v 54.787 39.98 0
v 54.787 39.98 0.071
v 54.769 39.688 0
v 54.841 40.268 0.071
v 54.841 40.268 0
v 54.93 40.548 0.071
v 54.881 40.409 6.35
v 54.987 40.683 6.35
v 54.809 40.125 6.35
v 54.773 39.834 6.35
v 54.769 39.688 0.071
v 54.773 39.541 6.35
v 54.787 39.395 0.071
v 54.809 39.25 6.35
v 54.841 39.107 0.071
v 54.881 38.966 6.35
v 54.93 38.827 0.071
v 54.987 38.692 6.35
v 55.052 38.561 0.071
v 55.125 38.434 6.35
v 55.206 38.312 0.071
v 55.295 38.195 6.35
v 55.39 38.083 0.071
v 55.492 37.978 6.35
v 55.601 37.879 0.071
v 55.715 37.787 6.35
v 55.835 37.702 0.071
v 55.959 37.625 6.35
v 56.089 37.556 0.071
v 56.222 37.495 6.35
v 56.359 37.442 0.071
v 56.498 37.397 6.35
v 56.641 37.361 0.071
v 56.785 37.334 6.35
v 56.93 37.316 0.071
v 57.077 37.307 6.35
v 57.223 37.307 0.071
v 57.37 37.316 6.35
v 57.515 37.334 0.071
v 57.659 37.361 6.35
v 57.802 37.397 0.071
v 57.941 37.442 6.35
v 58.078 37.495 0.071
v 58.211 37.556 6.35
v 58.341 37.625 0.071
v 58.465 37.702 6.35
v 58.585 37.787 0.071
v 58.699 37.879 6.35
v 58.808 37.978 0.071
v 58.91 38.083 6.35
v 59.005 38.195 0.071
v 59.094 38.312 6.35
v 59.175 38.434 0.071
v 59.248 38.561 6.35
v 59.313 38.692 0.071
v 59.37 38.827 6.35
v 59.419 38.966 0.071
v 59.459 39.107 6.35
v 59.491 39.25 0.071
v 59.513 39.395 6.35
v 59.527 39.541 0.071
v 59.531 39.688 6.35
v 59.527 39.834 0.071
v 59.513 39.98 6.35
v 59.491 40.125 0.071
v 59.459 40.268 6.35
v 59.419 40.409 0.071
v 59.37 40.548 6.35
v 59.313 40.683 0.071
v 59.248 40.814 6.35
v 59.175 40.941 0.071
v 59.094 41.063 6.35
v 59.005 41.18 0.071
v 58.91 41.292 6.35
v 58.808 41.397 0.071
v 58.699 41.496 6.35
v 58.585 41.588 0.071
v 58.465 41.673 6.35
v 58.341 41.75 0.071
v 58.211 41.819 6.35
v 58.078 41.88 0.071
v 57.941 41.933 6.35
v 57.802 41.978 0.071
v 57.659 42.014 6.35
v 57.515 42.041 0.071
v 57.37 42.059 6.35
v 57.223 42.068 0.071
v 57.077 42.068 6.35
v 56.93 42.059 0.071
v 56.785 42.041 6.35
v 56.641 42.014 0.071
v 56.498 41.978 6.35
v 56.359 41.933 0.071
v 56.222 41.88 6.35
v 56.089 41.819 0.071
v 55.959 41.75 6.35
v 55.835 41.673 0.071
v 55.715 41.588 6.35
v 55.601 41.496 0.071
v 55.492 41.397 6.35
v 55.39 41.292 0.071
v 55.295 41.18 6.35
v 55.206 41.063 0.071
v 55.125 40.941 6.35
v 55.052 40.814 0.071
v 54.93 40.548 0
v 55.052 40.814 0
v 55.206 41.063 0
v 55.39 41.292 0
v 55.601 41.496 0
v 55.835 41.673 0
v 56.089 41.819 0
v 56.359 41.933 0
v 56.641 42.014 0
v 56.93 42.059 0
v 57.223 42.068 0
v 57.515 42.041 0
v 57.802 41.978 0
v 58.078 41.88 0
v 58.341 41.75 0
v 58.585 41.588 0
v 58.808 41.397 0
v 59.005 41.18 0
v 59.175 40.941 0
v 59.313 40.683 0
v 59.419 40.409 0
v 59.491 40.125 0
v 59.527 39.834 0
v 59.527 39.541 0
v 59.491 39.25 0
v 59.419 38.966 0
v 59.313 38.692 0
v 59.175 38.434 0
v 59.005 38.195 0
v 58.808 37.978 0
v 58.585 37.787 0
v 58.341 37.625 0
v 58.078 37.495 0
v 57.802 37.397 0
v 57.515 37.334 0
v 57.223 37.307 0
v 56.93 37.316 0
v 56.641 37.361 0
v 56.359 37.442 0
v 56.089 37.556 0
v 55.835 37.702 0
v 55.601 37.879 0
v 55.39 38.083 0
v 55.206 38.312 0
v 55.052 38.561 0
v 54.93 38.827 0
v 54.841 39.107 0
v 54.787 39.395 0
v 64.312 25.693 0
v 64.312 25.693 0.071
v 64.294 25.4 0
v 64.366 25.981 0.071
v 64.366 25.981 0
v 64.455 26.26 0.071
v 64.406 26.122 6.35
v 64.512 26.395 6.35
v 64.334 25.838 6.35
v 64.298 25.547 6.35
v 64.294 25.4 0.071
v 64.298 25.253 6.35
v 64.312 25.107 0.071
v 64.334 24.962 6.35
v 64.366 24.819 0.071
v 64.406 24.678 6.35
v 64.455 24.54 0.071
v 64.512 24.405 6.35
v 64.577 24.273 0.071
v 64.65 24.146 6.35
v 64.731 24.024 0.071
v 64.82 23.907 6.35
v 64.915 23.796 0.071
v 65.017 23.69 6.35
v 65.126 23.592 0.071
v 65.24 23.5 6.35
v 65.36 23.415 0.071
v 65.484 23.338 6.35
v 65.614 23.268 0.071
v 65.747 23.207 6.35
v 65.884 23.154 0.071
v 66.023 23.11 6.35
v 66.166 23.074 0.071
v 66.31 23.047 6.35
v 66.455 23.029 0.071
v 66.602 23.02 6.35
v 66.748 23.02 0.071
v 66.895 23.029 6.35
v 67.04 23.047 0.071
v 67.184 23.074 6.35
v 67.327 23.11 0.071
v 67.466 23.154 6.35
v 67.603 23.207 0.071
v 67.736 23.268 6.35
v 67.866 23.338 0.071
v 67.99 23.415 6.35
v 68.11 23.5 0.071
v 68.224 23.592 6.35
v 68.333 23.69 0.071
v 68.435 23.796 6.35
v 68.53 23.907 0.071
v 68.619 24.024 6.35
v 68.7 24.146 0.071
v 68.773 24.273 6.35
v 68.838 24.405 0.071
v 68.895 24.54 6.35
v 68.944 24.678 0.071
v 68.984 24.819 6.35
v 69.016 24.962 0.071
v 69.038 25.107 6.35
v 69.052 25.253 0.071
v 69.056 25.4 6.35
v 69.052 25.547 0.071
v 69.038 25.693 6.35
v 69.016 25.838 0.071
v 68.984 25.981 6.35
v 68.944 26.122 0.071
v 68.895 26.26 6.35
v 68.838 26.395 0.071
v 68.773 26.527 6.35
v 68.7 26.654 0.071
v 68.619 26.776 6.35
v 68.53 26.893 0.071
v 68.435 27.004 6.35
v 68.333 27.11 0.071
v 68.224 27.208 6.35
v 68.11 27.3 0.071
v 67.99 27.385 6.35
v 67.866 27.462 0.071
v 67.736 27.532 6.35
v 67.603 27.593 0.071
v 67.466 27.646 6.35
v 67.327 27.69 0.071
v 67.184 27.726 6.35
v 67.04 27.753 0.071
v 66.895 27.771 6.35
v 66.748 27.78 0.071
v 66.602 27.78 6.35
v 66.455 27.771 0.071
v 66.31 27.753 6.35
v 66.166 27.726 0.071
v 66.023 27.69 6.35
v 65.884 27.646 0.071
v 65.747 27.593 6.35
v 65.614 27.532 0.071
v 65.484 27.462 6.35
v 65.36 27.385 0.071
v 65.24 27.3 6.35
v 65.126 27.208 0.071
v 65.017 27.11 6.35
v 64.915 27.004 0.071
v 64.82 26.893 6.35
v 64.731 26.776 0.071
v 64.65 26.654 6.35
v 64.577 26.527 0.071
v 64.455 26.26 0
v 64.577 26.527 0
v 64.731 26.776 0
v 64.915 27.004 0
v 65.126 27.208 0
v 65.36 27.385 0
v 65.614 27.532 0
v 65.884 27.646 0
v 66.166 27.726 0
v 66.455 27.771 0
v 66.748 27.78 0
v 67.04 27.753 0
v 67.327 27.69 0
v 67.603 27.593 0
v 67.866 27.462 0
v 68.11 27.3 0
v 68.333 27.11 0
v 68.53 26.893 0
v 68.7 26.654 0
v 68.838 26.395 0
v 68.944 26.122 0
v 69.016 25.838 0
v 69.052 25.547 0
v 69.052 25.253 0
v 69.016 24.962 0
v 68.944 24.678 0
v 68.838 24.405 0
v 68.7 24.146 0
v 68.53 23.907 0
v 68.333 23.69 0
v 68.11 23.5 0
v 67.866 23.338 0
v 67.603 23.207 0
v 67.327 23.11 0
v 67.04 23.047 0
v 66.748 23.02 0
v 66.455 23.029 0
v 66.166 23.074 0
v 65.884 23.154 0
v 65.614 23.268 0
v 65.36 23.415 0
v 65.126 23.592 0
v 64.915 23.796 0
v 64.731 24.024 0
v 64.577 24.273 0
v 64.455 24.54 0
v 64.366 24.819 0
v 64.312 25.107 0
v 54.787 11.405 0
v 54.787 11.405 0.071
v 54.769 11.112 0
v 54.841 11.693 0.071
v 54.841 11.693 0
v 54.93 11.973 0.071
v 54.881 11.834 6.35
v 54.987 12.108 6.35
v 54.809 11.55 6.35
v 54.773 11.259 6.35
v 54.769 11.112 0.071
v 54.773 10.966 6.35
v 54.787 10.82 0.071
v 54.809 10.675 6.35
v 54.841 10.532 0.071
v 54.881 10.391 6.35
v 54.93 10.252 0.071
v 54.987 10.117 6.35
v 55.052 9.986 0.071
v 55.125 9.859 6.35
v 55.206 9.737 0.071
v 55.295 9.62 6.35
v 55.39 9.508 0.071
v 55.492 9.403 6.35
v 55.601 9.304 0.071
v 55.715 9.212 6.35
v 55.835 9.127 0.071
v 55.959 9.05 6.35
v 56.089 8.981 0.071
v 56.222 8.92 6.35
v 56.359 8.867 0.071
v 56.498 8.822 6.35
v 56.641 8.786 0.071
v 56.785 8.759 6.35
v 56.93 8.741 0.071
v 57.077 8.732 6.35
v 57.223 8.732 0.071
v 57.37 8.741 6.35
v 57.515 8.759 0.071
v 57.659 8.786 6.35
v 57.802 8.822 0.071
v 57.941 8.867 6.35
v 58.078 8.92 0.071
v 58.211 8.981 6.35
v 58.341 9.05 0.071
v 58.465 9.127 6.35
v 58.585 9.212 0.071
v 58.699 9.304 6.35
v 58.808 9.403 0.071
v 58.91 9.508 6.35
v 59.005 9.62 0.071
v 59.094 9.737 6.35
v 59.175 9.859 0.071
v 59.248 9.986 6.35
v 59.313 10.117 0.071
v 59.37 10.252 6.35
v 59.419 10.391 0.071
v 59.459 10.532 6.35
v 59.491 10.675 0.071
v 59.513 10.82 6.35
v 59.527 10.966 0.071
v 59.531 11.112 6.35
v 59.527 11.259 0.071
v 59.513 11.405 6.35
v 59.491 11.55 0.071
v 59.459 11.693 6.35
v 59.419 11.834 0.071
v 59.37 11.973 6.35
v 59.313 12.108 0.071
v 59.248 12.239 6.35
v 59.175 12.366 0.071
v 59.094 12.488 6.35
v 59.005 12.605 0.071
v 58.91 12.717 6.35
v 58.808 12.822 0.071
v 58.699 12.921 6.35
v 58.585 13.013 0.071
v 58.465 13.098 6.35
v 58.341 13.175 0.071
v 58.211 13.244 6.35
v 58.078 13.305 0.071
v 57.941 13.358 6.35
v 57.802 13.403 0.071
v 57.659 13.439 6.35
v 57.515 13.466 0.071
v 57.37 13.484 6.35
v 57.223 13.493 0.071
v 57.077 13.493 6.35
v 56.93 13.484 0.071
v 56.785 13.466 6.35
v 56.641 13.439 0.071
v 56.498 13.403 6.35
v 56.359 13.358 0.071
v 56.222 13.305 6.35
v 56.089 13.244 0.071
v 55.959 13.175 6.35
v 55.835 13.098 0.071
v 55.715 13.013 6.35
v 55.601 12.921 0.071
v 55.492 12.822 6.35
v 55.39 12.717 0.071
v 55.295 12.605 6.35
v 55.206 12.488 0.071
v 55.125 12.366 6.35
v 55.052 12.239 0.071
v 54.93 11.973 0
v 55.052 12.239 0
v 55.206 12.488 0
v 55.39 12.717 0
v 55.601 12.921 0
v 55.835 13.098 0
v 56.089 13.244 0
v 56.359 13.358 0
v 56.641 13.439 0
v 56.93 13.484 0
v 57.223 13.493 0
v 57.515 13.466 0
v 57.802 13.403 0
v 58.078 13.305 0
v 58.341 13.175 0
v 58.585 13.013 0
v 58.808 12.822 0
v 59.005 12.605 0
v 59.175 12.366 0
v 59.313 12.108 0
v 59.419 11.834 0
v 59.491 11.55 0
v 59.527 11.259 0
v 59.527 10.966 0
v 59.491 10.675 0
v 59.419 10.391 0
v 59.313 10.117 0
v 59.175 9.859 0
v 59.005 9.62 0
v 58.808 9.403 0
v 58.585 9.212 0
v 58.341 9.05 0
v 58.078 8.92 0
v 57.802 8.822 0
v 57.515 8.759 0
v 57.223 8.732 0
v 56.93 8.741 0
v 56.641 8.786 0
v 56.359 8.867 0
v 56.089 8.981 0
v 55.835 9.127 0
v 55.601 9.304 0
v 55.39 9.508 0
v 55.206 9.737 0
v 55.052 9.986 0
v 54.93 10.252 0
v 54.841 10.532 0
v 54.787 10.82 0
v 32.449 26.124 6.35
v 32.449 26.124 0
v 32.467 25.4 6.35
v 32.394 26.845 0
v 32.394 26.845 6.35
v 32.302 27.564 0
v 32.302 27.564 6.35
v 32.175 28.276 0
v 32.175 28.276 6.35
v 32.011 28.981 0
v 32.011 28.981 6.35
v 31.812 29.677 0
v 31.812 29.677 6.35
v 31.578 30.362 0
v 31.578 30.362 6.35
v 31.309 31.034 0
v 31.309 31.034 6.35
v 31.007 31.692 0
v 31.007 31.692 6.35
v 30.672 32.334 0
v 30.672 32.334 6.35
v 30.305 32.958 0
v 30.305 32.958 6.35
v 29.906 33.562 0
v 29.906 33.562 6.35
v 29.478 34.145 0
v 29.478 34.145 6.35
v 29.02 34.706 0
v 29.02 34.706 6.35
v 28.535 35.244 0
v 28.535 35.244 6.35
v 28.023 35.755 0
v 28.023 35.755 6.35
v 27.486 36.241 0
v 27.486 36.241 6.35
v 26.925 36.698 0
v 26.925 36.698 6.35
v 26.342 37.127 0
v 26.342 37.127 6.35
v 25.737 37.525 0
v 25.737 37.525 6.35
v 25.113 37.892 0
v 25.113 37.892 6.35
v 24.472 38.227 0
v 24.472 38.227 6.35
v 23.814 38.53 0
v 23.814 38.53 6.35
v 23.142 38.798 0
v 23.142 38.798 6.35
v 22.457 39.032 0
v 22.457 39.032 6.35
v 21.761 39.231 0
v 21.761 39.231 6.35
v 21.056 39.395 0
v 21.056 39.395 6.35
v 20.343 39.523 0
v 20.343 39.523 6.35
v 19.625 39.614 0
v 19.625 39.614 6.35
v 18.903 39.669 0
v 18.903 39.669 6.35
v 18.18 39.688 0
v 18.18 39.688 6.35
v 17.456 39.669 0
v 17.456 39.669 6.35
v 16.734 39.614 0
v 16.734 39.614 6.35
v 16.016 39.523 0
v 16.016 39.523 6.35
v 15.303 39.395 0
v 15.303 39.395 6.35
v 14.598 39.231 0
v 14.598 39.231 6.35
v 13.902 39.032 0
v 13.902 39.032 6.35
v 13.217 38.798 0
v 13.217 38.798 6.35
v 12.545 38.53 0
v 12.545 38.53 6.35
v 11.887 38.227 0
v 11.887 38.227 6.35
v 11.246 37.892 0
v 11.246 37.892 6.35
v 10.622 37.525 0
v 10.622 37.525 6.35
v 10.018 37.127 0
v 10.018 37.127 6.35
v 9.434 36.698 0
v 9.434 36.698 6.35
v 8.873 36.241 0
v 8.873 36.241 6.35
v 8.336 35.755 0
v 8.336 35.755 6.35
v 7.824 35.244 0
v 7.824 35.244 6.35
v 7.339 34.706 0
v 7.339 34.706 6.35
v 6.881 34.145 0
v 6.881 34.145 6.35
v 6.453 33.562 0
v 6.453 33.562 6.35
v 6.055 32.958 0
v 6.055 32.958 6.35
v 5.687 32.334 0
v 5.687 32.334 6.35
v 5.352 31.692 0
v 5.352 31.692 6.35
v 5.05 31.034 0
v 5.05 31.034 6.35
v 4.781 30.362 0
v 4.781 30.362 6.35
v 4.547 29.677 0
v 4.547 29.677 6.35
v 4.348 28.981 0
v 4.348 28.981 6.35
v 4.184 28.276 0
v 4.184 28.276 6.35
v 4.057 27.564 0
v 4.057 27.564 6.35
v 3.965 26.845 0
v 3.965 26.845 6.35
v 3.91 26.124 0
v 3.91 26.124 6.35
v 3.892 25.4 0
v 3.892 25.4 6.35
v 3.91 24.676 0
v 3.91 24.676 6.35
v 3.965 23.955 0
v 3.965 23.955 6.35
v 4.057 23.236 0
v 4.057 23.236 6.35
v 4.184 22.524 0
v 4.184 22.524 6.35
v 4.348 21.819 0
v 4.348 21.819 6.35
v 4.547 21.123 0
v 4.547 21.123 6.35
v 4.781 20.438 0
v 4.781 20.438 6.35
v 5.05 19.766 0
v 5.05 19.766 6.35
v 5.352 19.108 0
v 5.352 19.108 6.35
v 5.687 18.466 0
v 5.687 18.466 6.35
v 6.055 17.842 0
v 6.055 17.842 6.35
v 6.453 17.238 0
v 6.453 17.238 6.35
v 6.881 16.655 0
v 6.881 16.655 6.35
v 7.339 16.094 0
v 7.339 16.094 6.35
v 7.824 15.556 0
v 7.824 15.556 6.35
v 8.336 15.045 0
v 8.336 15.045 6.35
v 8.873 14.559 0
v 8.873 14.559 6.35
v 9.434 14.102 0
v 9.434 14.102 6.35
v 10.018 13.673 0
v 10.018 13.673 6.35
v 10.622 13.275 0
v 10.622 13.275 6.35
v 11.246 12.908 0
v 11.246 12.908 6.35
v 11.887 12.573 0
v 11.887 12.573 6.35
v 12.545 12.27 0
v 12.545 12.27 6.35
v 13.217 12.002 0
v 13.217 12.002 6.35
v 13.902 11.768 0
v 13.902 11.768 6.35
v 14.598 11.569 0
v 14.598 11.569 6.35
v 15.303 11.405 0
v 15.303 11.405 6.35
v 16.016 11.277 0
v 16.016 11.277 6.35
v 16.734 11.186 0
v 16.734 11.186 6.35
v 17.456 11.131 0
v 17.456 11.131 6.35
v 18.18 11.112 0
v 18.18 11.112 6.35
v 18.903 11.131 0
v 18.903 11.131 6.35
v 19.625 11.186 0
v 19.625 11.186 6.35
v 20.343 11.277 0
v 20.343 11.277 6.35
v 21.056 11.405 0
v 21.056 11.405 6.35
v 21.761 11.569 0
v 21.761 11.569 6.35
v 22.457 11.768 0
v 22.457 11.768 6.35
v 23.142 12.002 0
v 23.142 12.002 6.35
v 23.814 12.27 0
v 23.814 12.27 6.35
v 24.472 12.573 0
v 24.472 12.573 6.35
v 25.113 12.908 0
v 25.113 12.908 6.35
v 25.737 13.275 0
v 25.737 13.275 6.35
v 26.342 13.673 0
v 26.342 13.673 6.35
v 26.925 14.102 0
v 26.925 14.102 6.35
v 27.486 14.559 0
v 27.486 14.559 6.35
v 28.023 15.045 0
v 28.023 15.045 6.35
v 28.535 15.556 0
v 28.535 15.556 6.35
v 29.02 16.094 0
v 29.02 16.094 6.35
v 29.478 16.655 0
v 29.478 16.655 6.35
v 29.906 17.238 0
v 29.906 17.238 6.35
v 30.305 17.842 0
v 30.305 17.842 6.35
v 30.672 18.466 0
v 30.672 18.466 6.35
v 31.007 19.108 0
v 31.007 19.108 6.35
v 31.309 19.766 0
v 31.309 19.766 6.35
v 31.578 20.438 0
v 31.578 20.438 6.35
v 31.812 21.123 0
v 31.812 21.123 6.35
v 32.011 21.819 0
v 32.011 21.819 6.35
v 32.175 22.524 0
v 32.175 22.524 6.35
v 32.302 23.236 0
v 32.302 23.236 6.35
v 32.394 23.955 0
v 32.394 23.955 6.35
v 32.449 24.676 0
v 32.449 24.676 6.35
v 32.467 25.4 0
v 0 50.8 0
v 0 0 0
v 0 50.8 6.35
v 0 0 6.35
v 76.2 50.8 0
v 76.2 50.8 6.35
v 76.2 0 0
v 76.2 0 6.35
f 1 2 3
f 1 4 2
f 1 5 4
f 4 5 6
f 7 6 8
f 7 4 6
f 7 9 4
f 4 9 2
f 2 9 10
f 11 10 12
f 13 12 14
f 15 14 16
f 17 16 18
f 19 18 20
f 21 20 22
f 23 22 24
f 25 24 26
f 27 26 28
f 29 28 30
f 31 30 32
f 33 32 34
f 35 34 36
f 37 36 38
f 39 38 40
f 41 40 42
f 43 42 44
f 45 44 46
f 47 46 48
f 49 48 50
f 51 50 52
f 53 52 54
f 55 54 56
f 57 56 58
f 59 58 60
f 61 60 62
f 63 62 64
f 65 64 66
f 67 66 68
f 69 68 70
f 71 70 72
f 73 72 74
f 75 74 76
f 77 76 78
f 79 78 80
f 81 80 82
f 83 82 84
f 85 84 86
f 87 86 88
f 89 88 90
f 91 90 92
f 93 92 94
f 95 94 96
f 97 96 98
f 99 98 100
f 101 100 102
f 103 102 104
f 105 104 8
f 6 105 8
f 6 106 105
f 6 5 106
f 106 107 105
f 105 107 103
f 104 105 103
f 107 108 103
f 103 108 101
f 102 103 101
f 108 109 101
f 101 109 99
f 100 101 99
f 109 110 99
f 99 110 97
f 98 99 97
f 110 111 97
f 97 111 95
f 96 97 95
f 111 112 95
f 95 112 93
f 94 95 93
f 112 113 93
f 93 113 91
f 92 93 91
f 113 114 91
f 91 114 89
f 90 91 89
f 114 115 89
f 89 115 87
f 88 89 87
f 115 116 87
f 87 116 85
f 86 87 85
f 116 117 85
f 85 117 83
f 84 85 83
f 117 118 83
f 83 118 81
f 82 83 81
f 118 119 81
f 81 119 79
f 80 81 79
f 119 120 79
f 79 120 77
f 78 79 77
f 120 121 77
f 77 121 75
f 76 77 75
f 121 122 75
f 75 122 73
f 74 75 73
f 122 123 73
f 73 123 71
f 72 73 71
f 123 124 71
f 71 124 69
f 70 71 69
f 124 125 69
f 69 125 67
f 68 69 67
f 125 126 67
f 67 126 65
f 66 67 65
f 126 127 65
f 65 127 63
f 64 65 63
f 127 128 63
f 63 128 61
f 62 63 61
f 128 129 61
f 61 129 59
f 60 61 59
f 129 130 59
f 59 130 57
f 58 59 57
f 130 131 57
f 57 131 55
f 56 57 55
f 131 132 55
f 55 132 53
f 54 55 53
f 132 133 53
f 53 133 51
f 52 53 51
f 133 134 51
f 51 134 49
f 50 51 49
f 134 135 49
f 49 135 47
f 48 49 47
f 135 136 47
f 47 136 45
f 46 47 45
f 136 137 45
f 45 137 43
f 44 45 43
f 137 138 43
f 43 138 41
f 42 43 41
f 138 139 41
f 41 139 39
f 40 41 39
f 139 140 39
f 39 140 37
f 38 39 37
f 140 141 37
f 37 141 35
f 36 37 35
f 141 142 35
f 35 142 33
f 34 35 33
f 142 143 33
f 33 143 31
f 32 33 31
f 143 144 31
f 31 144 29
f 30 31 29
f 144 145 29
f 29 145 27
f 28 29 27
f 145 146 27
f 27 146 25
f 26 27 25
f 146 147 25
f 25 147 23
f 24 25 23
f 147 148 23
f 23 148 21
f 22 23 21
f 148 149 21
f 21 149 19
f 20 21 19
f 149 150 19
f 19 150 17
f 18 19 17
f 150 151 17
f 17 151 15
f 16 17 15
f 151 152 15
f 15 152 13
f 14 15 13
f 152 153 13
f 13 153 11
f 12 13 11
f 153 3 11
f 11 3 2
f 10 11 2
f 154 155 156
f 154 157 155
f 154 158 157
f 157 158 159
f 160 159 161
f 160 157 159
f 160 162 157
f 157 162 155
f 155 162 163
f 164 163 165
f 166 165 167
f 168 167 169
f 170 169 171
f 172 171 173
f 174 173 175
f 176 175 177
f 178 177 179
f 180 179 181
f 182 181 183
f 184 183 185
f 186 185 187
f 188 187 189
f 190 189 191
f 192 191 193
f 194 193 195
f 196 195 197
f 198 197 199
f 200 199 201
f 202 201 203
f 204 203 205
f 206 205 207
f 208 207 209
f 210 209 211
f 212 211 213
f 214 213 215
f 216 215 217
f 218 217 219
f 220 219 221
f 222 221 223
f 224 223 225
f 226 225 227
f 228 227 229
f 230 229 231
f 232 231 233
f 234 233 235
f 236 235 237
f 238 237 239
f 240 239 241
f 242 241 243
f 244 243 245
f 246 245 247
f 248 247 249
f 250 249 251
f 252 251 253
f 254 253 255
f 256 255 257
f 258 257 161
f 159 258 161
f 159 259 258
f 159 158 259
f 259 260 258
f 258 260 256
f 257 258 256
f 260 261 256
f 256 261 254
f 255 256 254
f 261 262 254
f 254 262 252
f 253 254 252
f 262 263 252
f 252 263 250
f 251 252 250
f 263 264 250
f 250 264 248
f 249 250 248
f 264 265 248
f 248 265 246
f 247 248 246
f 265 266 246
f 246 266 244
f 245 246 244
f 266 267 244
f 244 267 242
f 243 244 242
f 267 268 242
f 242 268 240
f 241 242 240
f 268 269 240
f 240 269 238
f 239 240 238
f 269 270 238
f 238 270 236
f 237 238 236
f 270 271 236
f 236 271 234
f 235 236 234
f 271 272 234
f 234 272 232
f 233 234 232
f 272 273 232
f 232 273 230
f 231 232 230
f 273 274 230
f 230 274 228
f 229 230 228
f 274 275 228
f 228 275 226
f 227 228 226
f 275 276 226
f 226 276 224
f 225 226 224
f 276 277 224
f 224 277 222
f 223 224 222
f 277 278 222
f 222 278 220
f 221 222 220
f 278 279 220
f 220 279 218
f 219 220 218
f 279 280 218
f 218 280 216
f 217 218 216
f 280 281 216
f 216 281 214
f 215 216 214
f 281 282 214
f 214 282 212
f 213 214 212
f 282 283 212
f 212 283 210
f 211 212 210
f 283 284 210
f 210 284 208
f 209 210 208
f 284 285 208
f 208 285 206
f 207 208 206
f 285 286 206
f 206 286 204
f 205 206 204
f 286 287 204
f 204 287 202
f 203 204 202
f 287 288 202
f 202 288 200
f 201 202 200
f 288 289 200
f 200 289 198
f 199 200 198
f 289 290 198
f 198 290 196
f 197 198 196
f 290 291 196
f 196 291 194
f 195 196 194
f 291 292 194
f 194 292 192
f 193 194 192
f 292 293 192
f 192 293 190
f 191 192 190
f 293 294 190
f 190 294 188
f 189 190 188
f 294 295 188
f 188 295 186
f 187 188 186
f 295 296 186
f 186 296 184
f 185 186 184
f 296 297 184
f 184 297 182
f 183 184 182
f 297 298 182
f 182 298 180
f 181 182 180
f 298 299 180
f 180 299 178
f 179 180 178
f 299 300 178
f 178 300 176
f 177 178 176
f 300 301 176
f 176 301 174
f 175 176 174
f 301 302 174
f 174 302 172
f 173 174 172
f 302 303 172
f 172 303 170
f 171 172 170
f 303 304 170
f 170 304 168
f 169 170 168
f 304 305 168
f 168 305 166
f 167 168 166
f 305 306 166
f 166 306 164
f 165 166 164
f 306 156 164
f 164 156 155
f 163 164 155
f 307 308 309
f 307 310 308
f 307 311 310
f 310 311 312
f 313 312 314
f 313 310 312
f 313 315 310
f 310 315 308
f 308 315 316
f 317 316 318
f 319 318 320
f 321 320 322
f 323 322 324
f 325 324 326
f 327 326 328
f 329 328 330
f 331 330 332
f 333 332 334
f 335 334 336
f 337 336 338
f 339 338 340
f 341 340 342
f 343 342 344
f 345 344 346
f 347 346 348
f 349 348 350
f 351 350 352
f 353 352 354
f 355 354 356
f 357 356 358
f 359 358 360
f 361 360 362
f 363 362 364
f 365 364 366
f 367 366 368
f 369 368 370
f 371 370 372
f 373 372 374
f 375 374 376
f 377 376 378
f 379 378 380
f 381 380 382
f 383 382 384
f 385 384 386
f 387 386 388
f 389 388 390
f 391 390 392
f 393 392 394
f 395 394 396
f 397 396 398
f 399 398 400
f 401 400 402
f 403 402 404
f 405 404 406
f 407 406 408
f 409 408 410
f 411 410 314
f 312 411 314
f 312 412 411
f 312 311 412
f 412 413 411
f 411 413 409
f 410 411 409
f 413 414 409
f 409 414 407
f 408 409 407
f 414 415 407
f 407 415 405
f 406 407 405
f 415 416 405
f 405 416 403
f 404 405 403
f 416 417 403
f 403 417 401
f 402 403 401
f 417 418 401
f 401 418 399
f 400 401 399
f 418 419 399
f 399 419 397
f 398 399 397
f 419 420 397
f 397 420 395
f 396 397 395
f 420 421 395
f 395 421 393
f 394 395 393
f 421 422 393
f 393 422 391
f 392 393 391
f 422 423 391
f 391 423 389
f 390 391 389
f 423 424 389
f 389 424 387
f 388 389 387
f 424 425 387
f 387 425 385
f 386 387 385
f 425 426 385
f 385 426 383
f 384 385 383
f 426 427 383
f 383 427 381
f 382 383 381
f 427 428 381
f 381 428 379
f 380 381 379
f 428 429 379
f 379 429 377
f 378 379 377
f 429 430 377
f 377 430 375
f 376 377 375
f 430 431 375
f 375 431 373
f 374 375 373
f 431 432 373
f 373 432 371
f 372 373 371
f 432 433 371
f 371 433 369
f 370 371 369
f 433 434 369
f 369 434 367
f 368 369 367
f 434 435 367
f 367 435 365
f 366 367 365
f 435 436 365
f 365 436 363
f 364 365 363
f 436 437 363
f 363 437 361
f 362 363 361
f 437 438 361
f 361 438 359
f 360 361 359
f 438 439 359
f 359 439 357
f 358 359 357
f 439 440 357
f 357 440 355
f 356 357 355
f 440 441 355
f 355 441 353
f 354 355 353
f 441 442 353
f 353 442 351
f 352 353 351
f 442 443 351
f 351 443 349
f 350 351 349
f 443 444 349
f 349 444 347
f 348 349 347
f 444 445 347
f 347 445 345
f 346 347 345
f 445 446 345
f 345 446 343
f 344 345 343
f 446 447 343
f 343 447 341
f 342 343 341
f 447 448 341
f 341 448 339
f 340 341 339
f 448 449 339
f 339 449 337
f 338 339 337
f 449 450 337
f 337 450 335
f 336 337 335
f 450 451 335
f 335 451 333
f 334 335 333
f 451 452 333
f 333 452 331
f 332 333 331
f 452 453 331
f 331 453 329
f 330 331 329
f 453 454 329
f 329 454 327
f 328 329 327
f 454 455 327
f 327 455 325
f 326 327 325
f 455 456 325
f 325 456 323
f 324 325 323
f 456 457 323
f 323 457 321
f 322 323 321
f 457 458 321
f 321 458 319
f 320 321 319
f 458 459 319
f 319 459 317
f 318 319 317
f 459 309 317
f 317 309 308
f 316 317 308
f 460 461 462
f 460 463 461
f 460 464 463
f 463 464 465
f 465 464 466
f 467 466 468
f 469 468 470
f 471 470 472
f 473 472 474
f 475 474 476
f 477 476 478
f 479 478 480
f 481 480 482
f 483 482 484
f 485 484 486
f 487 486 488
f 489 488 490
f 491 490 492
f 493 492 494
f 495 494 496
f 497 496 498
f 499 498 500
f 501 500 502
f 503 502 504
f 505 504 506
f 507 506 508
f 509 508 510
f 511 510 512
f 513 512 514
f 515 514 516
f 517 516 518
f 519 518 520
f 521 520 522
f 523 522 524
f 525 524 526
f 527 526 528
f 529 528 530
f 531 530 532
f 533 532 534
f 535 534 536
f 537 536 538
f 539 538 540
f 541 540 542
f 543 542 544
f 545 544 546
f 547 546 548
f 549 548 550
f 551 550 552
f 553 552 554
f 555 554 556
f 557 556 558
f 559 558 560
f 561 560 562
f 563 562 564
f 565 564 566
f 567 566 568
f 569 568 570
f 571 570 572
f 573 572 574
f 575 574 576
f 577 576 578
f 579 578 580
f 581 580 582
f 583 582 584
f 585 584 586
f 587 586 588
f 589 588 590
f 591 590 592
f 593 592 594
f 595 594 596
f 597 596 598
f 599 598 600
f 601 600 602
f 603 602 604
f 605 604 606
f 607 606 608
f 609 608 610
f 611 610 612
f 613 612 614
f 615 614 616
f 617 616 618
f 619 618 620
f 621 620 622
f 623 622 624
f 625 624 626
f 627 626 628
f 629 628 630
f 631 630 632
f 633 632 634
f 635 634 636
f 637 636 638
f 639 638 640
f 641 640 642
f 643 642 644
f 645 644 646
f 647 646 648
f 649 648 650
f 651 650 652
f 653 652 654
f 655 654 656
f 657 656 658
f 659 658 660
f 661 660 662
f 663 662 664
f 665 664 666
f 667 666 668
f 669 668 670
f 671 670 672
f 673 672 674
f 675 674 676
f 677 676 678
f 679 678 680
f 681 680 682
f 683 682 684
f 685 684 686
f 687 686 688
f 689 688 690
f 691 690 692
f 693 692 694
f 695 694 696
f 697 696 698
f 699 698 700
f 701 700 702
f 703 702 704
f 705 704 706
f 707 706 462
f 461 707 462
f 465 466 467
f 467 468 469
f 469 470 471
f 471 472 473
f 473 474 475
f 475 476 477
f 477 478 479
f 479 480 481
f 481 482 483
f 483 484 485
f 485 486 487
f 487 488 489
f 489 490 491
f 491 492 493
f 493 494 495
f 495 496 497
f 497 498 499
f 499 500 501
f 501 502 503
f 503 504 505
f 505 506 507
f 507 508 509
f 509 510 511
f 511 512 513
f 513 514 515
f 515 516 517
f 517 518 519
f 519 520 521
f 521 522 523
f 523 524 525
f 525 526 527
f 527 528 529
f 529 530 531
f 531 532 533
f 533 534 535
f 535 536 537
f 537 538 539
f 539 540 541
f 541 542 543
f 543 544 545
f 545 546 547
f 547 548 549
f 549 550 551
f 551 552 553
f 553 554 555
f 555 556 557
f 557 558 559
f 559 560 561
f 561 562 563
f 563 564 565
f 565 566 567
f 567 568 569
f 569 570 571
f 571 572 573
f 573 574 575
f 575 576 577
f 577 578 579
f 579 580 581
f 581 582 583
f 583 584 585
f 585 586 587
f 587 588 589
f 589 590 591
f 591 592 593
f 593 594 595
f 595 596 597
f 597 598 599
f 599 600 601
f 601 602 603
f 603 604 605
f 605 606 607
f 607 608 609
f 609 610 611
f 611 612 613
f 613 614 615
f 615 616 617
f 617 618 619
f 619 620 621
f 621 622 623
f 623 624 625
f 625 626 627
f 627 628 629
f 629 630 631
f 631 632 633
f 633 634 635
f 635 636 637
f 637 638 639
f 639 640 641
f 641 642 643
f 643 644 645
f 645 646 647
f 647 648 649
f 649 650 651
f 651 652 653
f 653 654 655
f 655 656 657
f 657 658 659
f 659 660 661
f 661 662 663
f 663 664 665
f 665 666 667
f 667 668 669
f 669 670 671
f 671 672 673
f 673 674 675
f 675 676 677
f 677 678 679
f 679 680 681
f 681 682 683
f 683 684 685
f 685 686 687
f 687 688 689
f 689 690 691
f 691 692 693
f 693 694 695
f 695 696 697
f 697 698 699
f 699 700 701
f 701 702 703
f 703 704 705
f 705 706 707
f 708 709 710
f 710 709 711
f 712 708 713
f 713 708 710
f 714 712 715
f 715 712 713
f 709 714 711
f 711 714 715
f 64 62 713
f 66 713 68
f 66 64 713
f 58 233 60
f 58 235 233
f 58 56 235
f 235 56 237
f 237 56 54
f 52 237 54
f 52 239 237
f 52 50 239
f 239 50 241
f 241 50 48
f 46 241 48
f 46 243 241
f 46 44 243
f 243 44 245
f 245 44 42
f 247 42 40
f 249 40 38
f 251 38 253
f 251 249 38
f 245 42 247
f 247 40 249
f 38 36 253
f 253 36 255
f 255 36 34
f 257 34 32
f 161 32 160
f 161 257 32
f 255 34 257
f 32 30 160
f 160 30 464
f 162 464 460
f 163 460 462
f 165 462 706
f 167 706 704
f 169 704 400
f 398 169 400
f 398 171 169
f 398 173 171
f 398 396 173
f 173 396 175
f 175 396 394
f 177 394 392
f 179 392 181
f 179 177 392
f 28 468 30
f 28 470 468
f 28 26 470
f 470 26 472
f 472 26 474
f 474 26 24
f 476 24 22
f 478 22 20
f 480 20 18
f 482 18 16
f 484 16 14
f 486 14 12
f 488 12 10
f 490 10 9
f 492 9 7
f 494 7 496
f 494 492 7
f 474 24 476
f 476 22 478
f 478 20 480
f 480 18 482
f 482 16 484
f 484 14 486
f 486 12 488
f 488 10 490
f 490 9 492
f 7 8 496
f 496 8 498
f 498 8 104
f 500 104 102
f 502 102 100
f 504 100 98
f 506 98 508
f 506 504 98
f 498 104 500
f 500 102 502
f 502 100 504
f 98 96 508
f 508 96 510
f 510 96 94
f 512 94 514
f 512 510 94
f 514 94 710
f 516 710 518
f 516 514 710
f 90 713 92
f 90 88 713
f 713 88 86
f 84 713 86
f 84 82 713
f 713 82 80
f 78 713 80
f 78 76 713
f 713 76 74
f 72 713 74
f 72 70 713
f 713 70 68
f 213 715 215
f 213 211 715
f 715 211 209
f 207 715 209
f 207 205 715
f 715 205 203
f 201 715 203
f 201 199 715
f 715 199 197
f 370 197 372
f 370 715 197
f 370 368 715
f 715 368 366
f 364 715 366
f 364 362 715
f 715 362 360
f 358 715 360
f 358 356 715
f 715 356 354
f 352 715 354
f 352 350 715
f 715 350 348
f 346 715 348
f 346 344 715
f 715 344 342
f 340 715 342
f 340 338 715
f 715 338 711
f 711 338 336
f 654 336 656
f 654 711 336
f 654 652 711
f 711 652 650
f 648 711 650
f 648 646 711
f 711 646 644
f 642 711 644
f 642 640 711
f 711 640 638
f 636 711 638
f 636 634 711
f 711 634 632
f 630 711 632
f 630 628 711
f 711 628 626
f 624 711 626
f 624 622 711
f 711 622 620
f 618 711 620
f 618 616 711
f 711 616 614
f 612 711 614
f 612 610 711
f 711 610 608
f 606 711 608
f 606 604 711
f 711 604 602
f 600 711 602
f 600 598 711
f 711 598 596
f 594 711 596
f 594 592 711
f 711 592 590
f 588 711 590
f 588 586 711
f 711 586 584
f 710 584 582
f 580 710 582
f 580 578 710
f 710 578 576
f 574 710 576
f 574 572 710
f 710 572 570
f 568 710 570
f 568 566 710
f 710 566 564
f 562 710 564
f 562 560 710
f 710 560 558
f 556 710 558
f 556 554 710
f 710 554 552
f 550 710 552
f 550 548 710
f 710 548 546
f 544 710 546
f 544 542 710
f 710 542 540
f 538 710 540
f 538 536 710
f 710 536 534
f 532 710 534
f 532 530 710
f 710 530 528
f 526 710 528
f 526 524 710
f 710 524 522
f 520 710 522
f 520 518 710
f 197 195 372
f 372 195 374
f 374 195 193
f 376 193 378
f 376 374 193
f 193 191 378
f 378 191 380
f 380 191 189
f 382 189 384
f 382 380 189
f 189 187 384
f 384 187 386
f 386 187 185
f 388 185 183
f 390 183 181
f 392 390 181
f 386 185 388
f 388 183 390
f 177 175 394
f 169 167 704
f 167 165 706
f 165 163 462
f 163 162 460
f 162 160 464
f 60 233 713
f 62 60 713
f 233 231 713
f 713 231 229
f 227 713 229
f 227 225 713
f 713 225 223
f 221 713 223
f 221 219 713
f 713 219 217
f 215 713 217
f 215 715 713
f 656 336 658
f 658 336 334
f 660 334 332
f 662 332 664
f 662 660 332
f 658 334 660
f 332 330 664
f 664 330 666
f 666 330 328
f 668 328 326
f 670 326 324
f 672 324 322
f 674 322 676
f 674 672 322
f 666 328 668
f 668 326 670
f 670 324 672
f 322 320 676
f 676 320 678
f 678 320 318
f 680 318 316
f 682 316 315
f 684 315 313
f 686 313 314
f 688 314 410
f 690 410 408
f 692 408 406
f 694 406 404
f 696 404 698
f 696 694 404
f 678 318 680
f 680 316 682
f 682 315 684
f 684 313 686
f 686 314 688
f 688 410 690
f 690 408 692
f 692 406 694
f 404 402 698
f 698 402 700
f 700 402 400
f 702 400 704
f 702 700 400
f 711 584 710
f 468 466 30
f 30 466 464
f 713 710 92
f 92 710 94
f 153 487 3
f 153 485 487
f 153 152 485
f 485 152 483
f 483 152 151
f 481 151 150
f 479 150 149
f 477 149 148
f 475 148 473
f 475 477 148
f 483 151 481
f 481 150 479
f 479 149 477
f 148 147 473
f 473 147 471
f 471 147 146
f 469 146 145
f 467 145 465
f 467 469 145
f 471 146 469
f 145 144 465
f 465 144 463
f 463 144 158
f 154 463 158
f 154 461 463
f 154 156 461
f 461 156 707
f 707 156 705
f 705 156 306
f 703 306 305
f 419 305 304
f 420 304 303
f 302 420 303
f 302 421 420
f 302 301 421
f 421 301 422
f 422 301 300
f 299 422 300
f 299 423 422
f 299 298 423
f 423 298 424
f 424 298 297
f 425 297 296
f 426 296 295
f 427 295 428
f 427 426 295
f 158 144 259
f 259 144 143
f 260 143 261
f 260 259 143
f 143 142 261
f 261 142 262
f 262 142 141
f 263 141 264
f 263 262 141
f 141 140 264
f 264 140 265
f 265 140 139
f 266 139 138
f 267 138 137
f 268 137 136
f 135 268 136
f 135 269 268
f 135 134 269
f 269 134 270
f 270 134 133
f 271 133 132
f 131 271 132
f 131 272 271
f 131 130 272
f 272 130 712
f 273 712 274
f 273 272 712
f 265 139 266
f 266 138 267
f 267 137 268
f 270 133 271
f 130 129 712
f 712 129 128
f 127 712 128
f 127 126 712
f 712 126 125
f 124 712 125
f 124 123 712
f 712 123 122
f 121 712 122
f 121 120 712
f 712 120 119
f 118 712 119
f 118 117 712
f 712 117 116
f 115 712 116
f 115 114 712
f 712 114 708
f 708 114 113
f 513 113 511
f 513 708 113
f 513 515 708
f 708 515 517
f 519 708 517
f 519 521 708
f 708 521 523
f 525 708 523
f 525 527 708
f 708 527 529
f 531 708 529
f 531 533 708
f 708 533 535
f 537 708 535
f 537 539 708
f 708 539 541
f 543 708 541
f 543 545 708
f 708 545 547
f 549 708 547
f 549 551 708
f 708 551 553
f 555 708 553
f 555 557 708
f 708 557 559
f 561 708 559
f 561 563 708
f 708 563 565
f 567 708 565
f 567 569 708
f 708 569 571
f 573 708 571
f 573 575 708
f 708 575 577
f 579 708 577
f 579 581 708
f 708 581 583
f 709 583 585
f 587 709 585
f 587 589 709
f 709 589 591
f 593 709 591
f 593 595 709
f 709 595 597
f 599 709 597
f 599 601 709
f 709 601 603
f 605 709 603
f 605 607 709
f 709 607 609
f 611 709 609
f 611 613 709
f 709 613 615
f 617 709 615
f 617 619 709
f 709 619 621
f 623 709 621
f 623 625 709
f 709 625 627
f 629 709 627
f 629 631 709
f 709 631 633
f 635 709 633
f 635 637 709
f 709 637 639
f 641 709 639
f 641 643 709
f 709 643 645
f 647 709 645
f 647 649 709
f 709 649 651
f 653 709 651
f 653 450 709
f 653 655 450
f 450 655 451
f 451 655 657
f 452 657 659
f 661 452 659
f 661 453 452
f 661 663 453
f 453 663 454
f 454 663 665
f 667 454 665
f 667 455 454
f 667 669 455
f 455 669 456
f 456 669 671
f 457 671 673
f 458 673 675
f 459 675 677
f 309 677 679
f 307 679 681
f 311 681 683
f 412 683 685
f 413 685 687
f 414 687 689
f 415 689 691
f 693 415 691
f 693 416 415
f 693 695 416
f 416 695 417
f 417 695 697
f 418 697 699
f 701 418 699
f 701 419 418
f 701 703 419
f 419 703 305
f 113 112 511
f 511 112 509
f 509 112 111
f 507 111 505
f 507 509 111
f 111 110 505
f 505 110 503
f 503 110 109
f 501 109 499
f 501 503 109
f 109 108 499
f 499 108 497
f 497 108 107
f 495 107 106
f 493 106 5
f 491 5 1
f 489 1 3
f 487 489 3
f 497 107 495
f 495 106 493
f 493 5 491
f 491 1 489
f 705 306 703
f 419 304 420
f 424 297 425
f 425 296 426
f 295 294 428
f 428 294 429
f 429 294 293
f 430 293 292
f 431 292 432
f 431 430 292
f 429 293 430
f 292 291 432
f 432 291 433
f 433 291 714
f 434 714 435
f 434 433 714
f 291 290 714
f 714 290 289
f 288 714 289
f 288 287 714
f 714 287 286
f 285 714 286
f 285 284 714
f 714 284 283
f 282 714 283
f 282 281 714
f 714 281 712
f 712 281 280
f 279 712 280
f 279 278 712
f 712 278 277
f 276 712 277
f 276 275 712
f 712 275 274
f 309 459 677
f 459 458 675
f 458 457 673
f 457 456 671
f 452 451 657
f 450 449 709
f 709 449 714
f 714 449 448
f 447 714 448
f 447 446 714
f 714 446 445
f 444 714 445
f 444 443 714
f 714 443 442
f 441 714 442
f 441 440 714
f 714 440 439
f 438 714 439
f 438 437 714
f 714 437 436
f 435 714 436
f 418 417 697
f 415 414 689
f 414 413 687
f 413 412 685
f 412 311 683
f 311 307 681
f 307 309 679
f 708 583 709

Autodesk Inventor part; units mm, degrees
ref_plane "YZ Plane" through (0, 0, 0) normal (1, 0, 0) x (0, 1, 0)
ref_plane "XZ Plane" through (0, 0, 0) normal (0, 1, 0) x (-1, 0, 0)
ref_plane "XY Plane" through (0, 0, 0) normal (0, 0, 1) x (1, 0, 0)
sketch "Sketch1" plane through (0, 0, 0) normal (0, 0, 1) x (1, 0, 0)
  line L0 (0, 0) -> (76.2, 0)
  line L1 (76.2, 0) -> (76.2, 50.8)
  line L2 (76.2, 50.8) -> (0, 50.8)
  line L3 (0, 50.8) -> (0, 0)
  circle A0 centre (18.1795, 25.4) radius 14.2875
  line L4 (76.2, 50.8) -> (57.15, 50.8)
  line L5 (57.15, 39.6875) -> (66.675, 25.4)
  line L6 (66.675, 25.4) -> (57.15, 11.1125)
  dimension "d0" = 76.2
  dimension "d1" = 50.8
  dimension "d2" = 28.575
extrude "Extrusion1" add sketch "Sketch1" along normal blind 6.35
sketch "Sketch2" plane through (0, 0, 6.35) normal (0, 0, 1) x (1, 0, 0)
  line L0 (76.2, 50.8) -> (0, 50.8) projected
  line L1 (76.2, 50.8) -> (57.15, 50.8)
  line L2 (57.15, 39.6875) -> (66.675, 25.4)
  line L3 (66.675, 25.4) -> (57.15, 11.1125)
hole "Hole1" at (66.675, 25.4, 6.35) at (57.15, 39.6875, 6.35) at (57.15, 11.1125, 6.35) direction (0, 0, -1) diameter 4.7625 end through all
equation "\"d12\" = Thickness"
equation "\"BendRadius\" = Thickness"
equation "\"BendReliefWidth\" = Thickness"
equation "\"BendReliefDepth\" = 0.5 * Thickness"
equation "\"CornerReliefSize\" = 4 * Thickness"
equation "\"MinimumRemnant\" = 2 * Thickness"
equation "\"TransitionRadius\" = BendRadius"
equation "\"JacobiRadiusSize\" = BendRadius"
equation "\"GapSize\" = Thickness"
equation "\"Thickness\" = 3.048"
properties part number "Light Bracket"
